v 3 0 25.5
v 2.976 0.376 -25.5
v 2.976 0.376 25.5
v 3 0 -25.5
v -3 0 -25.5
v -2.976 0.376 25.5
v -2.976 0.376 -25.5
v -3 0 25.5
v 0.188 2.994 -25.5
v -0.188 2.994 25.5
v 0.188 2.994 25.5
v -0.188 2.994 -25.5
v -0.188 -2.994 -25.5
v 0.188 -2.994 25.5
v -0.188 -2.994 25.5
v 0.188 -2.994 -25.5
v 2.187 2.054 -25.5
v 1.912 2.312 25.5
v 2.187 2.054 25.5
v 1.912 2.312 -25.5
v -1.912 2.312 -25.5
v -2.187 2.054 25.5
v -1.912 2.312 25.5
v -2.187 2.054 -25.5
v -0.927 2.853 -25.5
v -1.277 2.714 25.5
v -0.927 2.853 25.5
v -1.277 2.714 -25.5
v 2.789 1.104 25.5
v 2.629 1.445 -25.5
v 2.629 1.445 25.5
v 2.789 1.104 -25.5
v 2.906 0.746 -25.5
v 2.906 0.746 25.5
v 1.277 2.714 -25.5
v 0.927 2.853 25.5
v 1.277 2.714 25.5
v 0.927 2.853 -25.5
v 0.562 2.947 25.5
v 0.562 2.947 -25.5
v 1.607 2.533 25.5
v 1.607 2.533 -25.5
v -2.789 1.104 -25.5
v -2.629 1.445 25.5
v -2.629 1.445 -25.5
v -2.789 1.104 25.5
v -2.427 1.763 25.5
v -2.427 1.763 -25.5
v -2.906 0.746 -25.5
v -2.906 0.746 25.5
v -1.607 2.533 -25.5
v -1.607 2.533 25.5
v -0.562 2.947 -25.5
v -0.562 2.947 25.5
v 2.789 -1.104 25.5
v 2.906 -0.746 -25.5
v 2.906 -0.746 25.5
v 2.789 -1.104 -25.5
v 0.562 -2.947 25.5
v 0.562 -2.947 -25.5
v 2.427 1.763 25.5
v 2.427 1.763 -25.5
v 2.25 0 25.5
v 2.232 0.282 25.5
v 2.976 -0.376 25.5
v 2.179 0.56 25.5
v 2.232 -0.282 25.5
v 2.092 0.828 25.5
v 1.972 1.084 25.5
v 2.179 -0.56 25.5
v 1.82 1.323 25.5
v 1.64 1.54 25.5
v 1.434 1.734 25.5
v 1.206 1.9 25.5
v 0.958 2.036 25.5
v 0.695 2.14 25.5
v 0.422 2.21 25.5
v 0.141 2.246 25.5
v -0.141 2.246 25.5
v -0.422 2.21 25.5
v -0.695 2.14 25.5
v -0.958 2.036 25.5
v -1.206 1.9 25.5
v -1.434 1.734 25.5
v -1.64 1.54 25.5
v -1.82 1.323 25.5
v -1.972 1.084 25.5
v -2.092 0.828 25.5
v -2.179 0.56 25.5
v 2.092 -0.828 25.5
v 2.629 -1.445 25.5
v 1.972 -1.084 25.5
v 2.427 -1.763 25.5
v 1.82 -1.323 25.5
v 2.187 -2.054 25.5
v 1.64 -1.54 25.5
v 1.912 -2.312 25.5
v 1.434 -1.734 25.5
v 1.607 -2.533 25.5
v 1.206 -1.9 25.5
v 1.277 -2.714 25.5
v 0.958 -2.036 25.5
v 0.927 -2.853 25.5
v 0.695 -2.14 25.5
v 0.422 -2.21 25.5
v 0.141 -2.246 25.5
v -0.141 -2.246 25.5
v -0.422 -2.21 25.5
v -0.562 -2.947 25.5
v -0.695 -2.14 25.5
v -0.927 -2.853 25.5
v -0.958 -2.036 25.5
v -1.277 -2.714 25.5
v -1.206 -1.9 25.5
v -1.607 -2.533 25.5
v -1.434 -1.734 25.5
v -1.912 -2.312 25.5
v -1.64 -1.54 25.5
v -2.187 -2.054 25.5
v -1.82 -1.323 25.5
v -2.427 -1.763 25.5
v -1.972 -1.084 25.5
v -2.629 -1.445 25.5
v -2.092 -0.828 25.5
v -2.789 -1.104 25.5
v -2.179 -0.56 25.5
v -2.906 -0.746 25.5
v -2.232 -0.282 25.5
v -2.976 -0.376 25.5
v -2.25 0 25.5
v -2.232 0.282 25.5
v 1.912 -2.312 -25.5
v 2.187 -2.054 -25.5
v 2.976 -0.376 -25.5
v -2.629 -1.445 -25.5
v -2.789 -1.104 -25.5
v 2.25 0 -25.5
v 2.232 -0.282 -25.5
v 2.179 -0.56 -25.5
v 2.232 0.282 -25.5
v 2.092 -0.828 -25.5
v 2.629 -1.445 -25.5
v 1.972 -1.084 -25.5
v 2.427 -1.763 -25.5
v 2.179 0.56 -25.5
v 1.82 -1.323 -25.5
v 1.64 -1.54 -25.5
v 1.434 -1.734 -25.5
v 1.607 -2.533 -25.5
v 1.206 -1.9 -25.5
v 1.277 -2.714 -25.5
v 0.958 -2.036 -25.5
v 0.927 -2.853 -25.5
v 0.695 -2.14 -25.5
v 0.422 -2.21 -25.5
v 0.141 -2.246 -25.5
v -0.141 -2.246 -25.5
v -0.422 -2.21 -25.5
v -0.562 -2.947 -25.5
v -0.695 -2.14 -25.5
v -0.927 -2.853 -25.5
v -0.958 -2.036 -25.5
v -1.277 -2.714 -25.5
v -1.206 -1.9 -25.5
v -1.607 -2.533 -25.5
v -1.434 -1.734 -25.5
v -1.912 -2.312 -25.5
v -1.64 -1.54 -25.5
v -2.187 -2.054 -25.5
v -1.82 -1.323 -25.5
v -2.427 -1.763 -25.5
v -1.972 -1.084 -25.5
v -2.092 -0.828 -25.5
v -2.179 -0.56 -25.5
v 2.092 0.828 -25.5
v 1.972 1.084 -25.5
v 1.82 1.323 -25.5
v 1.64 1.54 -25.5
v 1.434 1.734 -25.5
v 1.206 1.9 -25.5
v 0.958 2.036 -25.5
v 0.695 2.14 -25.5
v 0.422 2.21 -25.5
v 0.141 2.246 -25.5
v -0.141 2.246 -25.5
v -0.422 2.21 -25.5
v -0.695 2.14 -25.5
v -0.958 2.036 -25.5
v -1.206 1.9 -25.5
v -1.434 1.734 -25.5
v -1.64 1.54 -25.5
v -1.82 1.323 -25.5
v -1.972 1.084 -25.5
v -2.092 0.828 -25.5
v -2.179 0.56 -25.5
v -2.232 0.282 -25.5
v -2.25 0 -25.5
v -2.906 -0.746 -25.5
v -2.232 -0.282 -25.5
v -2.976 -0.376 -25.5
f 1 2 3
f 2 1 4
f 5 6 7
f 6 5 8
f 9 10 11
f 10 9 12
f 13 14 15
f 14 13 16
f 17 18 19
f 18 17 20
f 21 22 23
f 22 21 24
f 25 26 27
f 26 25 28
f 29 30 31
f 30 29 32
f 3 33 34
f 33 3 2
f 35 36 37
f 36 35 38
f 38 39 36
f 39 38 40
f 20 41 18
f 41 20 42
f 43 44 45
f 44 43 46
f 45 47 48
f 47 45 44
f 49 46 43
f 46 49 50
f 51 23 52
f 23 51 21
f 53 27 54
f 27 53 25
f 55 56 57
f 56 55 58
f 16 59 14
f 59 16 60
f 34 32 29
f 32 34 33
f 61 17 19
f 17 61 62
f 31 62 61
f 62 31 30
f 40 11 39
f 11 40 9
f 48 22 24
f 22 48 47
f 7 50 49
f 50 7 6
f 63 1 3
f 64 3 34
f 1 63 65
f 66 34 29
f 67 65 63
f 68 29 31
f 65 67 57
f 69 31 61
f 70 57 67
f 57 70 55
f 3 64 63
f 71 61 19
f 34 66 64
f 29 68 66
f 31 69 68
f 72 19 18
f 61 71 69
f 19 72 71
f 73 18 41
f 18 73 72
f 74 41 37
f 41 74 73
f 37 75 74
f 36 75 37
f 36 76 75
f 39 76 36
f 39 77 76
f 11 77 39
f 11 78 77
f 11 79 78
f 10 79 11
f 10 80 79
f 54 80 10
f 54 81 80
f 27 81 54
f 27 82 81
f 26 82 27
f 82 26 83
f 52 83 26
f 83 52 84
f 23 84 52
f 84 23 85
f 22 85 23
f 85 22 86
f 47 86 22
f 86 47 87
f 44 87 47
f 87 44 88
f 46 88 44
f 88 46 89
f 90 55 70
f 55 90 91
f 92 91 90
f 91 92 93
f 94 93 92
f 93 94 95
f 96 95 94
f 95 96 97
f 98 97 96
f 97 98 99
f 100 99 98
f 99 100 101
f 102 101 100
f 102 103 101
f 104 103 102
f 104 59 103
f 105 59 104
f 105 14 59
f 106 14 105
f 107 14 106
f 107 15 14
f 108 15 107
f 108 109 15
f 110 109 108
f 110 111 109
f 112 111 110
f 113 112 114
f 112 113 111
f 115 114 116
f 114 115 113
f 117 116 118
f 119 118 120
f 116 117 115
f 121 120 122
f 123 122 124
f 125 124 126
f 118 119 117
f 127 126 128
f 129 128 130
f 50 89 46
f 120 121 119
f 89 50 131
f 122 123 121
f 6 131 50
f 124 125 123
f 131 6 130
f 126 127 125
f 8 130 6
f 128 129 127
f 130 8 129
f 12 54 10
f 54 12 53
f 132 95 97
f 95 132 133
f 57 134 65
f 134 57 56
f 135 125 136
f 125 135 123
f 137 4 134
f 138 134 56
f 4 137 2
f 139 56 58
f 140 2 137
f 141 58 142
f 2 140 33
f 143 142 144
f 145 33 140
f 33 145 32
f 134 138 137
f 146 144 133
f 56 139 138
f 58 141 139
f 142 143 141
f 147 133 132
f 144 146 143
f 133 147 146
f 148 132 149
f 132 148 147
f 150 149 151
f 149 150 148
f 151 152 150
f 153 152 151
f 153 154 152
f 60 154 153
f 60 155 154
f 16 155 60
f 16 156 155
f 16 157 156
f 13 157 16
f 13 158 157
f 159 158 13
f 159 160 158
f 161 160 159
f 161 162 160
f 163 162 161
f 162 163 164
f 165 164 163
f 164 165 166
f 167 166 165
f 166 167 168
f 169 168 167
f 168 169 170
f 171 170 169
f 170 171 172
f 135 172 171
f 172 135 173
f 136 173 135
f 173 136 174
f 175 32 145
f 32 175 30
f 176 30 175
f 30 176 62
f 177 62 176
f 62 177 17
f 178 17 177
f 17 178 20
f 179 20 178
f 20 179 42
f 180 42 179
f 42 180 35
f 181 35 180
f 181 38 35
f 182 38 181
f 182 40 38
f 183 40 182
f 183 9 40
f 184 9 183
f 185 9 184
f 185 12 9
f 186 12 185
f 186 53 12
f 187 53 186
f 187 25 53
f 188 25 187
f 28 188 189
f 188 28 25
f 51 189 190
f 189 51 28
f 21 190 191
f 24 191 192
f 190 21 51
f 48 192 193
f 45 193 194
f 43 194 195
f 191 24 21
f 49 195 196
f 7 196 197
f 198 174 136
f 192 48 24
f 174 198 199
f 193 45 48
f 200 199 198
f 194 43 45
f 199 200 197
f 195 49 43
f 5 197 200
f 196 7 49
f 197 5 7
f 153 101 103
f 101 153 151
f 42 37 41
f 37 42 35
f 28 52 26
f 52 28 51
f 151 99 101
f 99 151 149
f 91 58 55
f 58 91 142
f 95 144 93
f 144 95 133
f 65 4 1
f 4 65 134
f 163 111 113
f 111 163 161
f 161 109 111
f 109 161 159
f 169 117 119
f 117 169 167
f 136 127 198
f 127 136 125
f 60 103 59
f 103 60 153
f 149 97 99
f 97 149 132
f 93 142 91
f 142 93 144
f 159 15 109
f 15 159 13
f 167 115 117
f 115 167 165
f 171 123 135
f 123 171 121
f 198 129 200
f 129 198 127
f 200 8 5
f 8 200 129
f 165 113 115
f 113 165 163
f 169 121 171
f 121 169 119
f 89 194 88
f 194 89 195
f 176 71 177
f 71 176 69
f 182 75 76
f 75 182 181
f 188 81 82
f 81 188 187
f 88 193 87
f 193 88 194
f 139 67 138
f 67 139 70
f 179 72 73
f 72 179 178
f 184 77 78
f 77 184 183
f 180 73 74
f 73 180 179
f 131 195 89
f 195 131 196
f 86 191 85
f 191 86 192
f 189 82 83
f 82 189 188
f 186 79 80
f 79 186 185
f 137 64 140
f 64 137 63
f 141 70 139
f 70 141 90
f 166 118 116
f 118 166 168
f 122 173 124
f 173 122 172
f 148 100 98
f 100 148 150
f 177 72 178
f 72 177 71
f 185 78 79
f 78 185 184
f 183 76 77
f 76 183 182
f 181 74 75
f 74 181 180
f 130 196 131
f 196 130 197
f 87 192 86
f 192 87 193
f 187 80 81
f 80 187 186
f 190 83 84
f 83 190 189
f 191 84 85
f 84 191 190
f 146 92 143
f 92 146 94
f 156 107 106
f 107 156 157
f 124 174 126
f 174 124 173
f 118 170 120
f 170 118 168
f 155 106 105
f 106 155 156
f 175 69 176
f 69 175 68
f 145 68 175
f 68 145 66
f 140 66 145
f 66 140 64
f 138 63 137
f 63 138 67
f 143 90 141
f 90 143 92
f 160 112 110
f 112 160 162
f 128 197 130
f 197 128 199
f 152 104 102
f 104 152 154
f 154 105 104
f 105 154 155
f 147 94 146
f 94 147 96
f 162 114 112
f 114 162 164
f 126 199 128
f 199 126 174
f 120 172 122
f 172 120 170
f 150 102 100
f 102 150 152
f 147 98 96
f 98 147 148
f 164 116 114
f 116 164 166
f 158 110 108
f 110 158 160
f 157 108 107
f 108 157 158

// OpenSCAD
$fn = 50;


difference() {
	union() {
		translate(v = [0, 0, -25.5000000000]) {
			cylinder(h = 51, r = 3.0000000000);
		}
	}
	union() {
		translate(v = [0, 0, -100.0000000000]) {
			cylinder(h = 200, r = 2.2500000000);
		}
	}
}
